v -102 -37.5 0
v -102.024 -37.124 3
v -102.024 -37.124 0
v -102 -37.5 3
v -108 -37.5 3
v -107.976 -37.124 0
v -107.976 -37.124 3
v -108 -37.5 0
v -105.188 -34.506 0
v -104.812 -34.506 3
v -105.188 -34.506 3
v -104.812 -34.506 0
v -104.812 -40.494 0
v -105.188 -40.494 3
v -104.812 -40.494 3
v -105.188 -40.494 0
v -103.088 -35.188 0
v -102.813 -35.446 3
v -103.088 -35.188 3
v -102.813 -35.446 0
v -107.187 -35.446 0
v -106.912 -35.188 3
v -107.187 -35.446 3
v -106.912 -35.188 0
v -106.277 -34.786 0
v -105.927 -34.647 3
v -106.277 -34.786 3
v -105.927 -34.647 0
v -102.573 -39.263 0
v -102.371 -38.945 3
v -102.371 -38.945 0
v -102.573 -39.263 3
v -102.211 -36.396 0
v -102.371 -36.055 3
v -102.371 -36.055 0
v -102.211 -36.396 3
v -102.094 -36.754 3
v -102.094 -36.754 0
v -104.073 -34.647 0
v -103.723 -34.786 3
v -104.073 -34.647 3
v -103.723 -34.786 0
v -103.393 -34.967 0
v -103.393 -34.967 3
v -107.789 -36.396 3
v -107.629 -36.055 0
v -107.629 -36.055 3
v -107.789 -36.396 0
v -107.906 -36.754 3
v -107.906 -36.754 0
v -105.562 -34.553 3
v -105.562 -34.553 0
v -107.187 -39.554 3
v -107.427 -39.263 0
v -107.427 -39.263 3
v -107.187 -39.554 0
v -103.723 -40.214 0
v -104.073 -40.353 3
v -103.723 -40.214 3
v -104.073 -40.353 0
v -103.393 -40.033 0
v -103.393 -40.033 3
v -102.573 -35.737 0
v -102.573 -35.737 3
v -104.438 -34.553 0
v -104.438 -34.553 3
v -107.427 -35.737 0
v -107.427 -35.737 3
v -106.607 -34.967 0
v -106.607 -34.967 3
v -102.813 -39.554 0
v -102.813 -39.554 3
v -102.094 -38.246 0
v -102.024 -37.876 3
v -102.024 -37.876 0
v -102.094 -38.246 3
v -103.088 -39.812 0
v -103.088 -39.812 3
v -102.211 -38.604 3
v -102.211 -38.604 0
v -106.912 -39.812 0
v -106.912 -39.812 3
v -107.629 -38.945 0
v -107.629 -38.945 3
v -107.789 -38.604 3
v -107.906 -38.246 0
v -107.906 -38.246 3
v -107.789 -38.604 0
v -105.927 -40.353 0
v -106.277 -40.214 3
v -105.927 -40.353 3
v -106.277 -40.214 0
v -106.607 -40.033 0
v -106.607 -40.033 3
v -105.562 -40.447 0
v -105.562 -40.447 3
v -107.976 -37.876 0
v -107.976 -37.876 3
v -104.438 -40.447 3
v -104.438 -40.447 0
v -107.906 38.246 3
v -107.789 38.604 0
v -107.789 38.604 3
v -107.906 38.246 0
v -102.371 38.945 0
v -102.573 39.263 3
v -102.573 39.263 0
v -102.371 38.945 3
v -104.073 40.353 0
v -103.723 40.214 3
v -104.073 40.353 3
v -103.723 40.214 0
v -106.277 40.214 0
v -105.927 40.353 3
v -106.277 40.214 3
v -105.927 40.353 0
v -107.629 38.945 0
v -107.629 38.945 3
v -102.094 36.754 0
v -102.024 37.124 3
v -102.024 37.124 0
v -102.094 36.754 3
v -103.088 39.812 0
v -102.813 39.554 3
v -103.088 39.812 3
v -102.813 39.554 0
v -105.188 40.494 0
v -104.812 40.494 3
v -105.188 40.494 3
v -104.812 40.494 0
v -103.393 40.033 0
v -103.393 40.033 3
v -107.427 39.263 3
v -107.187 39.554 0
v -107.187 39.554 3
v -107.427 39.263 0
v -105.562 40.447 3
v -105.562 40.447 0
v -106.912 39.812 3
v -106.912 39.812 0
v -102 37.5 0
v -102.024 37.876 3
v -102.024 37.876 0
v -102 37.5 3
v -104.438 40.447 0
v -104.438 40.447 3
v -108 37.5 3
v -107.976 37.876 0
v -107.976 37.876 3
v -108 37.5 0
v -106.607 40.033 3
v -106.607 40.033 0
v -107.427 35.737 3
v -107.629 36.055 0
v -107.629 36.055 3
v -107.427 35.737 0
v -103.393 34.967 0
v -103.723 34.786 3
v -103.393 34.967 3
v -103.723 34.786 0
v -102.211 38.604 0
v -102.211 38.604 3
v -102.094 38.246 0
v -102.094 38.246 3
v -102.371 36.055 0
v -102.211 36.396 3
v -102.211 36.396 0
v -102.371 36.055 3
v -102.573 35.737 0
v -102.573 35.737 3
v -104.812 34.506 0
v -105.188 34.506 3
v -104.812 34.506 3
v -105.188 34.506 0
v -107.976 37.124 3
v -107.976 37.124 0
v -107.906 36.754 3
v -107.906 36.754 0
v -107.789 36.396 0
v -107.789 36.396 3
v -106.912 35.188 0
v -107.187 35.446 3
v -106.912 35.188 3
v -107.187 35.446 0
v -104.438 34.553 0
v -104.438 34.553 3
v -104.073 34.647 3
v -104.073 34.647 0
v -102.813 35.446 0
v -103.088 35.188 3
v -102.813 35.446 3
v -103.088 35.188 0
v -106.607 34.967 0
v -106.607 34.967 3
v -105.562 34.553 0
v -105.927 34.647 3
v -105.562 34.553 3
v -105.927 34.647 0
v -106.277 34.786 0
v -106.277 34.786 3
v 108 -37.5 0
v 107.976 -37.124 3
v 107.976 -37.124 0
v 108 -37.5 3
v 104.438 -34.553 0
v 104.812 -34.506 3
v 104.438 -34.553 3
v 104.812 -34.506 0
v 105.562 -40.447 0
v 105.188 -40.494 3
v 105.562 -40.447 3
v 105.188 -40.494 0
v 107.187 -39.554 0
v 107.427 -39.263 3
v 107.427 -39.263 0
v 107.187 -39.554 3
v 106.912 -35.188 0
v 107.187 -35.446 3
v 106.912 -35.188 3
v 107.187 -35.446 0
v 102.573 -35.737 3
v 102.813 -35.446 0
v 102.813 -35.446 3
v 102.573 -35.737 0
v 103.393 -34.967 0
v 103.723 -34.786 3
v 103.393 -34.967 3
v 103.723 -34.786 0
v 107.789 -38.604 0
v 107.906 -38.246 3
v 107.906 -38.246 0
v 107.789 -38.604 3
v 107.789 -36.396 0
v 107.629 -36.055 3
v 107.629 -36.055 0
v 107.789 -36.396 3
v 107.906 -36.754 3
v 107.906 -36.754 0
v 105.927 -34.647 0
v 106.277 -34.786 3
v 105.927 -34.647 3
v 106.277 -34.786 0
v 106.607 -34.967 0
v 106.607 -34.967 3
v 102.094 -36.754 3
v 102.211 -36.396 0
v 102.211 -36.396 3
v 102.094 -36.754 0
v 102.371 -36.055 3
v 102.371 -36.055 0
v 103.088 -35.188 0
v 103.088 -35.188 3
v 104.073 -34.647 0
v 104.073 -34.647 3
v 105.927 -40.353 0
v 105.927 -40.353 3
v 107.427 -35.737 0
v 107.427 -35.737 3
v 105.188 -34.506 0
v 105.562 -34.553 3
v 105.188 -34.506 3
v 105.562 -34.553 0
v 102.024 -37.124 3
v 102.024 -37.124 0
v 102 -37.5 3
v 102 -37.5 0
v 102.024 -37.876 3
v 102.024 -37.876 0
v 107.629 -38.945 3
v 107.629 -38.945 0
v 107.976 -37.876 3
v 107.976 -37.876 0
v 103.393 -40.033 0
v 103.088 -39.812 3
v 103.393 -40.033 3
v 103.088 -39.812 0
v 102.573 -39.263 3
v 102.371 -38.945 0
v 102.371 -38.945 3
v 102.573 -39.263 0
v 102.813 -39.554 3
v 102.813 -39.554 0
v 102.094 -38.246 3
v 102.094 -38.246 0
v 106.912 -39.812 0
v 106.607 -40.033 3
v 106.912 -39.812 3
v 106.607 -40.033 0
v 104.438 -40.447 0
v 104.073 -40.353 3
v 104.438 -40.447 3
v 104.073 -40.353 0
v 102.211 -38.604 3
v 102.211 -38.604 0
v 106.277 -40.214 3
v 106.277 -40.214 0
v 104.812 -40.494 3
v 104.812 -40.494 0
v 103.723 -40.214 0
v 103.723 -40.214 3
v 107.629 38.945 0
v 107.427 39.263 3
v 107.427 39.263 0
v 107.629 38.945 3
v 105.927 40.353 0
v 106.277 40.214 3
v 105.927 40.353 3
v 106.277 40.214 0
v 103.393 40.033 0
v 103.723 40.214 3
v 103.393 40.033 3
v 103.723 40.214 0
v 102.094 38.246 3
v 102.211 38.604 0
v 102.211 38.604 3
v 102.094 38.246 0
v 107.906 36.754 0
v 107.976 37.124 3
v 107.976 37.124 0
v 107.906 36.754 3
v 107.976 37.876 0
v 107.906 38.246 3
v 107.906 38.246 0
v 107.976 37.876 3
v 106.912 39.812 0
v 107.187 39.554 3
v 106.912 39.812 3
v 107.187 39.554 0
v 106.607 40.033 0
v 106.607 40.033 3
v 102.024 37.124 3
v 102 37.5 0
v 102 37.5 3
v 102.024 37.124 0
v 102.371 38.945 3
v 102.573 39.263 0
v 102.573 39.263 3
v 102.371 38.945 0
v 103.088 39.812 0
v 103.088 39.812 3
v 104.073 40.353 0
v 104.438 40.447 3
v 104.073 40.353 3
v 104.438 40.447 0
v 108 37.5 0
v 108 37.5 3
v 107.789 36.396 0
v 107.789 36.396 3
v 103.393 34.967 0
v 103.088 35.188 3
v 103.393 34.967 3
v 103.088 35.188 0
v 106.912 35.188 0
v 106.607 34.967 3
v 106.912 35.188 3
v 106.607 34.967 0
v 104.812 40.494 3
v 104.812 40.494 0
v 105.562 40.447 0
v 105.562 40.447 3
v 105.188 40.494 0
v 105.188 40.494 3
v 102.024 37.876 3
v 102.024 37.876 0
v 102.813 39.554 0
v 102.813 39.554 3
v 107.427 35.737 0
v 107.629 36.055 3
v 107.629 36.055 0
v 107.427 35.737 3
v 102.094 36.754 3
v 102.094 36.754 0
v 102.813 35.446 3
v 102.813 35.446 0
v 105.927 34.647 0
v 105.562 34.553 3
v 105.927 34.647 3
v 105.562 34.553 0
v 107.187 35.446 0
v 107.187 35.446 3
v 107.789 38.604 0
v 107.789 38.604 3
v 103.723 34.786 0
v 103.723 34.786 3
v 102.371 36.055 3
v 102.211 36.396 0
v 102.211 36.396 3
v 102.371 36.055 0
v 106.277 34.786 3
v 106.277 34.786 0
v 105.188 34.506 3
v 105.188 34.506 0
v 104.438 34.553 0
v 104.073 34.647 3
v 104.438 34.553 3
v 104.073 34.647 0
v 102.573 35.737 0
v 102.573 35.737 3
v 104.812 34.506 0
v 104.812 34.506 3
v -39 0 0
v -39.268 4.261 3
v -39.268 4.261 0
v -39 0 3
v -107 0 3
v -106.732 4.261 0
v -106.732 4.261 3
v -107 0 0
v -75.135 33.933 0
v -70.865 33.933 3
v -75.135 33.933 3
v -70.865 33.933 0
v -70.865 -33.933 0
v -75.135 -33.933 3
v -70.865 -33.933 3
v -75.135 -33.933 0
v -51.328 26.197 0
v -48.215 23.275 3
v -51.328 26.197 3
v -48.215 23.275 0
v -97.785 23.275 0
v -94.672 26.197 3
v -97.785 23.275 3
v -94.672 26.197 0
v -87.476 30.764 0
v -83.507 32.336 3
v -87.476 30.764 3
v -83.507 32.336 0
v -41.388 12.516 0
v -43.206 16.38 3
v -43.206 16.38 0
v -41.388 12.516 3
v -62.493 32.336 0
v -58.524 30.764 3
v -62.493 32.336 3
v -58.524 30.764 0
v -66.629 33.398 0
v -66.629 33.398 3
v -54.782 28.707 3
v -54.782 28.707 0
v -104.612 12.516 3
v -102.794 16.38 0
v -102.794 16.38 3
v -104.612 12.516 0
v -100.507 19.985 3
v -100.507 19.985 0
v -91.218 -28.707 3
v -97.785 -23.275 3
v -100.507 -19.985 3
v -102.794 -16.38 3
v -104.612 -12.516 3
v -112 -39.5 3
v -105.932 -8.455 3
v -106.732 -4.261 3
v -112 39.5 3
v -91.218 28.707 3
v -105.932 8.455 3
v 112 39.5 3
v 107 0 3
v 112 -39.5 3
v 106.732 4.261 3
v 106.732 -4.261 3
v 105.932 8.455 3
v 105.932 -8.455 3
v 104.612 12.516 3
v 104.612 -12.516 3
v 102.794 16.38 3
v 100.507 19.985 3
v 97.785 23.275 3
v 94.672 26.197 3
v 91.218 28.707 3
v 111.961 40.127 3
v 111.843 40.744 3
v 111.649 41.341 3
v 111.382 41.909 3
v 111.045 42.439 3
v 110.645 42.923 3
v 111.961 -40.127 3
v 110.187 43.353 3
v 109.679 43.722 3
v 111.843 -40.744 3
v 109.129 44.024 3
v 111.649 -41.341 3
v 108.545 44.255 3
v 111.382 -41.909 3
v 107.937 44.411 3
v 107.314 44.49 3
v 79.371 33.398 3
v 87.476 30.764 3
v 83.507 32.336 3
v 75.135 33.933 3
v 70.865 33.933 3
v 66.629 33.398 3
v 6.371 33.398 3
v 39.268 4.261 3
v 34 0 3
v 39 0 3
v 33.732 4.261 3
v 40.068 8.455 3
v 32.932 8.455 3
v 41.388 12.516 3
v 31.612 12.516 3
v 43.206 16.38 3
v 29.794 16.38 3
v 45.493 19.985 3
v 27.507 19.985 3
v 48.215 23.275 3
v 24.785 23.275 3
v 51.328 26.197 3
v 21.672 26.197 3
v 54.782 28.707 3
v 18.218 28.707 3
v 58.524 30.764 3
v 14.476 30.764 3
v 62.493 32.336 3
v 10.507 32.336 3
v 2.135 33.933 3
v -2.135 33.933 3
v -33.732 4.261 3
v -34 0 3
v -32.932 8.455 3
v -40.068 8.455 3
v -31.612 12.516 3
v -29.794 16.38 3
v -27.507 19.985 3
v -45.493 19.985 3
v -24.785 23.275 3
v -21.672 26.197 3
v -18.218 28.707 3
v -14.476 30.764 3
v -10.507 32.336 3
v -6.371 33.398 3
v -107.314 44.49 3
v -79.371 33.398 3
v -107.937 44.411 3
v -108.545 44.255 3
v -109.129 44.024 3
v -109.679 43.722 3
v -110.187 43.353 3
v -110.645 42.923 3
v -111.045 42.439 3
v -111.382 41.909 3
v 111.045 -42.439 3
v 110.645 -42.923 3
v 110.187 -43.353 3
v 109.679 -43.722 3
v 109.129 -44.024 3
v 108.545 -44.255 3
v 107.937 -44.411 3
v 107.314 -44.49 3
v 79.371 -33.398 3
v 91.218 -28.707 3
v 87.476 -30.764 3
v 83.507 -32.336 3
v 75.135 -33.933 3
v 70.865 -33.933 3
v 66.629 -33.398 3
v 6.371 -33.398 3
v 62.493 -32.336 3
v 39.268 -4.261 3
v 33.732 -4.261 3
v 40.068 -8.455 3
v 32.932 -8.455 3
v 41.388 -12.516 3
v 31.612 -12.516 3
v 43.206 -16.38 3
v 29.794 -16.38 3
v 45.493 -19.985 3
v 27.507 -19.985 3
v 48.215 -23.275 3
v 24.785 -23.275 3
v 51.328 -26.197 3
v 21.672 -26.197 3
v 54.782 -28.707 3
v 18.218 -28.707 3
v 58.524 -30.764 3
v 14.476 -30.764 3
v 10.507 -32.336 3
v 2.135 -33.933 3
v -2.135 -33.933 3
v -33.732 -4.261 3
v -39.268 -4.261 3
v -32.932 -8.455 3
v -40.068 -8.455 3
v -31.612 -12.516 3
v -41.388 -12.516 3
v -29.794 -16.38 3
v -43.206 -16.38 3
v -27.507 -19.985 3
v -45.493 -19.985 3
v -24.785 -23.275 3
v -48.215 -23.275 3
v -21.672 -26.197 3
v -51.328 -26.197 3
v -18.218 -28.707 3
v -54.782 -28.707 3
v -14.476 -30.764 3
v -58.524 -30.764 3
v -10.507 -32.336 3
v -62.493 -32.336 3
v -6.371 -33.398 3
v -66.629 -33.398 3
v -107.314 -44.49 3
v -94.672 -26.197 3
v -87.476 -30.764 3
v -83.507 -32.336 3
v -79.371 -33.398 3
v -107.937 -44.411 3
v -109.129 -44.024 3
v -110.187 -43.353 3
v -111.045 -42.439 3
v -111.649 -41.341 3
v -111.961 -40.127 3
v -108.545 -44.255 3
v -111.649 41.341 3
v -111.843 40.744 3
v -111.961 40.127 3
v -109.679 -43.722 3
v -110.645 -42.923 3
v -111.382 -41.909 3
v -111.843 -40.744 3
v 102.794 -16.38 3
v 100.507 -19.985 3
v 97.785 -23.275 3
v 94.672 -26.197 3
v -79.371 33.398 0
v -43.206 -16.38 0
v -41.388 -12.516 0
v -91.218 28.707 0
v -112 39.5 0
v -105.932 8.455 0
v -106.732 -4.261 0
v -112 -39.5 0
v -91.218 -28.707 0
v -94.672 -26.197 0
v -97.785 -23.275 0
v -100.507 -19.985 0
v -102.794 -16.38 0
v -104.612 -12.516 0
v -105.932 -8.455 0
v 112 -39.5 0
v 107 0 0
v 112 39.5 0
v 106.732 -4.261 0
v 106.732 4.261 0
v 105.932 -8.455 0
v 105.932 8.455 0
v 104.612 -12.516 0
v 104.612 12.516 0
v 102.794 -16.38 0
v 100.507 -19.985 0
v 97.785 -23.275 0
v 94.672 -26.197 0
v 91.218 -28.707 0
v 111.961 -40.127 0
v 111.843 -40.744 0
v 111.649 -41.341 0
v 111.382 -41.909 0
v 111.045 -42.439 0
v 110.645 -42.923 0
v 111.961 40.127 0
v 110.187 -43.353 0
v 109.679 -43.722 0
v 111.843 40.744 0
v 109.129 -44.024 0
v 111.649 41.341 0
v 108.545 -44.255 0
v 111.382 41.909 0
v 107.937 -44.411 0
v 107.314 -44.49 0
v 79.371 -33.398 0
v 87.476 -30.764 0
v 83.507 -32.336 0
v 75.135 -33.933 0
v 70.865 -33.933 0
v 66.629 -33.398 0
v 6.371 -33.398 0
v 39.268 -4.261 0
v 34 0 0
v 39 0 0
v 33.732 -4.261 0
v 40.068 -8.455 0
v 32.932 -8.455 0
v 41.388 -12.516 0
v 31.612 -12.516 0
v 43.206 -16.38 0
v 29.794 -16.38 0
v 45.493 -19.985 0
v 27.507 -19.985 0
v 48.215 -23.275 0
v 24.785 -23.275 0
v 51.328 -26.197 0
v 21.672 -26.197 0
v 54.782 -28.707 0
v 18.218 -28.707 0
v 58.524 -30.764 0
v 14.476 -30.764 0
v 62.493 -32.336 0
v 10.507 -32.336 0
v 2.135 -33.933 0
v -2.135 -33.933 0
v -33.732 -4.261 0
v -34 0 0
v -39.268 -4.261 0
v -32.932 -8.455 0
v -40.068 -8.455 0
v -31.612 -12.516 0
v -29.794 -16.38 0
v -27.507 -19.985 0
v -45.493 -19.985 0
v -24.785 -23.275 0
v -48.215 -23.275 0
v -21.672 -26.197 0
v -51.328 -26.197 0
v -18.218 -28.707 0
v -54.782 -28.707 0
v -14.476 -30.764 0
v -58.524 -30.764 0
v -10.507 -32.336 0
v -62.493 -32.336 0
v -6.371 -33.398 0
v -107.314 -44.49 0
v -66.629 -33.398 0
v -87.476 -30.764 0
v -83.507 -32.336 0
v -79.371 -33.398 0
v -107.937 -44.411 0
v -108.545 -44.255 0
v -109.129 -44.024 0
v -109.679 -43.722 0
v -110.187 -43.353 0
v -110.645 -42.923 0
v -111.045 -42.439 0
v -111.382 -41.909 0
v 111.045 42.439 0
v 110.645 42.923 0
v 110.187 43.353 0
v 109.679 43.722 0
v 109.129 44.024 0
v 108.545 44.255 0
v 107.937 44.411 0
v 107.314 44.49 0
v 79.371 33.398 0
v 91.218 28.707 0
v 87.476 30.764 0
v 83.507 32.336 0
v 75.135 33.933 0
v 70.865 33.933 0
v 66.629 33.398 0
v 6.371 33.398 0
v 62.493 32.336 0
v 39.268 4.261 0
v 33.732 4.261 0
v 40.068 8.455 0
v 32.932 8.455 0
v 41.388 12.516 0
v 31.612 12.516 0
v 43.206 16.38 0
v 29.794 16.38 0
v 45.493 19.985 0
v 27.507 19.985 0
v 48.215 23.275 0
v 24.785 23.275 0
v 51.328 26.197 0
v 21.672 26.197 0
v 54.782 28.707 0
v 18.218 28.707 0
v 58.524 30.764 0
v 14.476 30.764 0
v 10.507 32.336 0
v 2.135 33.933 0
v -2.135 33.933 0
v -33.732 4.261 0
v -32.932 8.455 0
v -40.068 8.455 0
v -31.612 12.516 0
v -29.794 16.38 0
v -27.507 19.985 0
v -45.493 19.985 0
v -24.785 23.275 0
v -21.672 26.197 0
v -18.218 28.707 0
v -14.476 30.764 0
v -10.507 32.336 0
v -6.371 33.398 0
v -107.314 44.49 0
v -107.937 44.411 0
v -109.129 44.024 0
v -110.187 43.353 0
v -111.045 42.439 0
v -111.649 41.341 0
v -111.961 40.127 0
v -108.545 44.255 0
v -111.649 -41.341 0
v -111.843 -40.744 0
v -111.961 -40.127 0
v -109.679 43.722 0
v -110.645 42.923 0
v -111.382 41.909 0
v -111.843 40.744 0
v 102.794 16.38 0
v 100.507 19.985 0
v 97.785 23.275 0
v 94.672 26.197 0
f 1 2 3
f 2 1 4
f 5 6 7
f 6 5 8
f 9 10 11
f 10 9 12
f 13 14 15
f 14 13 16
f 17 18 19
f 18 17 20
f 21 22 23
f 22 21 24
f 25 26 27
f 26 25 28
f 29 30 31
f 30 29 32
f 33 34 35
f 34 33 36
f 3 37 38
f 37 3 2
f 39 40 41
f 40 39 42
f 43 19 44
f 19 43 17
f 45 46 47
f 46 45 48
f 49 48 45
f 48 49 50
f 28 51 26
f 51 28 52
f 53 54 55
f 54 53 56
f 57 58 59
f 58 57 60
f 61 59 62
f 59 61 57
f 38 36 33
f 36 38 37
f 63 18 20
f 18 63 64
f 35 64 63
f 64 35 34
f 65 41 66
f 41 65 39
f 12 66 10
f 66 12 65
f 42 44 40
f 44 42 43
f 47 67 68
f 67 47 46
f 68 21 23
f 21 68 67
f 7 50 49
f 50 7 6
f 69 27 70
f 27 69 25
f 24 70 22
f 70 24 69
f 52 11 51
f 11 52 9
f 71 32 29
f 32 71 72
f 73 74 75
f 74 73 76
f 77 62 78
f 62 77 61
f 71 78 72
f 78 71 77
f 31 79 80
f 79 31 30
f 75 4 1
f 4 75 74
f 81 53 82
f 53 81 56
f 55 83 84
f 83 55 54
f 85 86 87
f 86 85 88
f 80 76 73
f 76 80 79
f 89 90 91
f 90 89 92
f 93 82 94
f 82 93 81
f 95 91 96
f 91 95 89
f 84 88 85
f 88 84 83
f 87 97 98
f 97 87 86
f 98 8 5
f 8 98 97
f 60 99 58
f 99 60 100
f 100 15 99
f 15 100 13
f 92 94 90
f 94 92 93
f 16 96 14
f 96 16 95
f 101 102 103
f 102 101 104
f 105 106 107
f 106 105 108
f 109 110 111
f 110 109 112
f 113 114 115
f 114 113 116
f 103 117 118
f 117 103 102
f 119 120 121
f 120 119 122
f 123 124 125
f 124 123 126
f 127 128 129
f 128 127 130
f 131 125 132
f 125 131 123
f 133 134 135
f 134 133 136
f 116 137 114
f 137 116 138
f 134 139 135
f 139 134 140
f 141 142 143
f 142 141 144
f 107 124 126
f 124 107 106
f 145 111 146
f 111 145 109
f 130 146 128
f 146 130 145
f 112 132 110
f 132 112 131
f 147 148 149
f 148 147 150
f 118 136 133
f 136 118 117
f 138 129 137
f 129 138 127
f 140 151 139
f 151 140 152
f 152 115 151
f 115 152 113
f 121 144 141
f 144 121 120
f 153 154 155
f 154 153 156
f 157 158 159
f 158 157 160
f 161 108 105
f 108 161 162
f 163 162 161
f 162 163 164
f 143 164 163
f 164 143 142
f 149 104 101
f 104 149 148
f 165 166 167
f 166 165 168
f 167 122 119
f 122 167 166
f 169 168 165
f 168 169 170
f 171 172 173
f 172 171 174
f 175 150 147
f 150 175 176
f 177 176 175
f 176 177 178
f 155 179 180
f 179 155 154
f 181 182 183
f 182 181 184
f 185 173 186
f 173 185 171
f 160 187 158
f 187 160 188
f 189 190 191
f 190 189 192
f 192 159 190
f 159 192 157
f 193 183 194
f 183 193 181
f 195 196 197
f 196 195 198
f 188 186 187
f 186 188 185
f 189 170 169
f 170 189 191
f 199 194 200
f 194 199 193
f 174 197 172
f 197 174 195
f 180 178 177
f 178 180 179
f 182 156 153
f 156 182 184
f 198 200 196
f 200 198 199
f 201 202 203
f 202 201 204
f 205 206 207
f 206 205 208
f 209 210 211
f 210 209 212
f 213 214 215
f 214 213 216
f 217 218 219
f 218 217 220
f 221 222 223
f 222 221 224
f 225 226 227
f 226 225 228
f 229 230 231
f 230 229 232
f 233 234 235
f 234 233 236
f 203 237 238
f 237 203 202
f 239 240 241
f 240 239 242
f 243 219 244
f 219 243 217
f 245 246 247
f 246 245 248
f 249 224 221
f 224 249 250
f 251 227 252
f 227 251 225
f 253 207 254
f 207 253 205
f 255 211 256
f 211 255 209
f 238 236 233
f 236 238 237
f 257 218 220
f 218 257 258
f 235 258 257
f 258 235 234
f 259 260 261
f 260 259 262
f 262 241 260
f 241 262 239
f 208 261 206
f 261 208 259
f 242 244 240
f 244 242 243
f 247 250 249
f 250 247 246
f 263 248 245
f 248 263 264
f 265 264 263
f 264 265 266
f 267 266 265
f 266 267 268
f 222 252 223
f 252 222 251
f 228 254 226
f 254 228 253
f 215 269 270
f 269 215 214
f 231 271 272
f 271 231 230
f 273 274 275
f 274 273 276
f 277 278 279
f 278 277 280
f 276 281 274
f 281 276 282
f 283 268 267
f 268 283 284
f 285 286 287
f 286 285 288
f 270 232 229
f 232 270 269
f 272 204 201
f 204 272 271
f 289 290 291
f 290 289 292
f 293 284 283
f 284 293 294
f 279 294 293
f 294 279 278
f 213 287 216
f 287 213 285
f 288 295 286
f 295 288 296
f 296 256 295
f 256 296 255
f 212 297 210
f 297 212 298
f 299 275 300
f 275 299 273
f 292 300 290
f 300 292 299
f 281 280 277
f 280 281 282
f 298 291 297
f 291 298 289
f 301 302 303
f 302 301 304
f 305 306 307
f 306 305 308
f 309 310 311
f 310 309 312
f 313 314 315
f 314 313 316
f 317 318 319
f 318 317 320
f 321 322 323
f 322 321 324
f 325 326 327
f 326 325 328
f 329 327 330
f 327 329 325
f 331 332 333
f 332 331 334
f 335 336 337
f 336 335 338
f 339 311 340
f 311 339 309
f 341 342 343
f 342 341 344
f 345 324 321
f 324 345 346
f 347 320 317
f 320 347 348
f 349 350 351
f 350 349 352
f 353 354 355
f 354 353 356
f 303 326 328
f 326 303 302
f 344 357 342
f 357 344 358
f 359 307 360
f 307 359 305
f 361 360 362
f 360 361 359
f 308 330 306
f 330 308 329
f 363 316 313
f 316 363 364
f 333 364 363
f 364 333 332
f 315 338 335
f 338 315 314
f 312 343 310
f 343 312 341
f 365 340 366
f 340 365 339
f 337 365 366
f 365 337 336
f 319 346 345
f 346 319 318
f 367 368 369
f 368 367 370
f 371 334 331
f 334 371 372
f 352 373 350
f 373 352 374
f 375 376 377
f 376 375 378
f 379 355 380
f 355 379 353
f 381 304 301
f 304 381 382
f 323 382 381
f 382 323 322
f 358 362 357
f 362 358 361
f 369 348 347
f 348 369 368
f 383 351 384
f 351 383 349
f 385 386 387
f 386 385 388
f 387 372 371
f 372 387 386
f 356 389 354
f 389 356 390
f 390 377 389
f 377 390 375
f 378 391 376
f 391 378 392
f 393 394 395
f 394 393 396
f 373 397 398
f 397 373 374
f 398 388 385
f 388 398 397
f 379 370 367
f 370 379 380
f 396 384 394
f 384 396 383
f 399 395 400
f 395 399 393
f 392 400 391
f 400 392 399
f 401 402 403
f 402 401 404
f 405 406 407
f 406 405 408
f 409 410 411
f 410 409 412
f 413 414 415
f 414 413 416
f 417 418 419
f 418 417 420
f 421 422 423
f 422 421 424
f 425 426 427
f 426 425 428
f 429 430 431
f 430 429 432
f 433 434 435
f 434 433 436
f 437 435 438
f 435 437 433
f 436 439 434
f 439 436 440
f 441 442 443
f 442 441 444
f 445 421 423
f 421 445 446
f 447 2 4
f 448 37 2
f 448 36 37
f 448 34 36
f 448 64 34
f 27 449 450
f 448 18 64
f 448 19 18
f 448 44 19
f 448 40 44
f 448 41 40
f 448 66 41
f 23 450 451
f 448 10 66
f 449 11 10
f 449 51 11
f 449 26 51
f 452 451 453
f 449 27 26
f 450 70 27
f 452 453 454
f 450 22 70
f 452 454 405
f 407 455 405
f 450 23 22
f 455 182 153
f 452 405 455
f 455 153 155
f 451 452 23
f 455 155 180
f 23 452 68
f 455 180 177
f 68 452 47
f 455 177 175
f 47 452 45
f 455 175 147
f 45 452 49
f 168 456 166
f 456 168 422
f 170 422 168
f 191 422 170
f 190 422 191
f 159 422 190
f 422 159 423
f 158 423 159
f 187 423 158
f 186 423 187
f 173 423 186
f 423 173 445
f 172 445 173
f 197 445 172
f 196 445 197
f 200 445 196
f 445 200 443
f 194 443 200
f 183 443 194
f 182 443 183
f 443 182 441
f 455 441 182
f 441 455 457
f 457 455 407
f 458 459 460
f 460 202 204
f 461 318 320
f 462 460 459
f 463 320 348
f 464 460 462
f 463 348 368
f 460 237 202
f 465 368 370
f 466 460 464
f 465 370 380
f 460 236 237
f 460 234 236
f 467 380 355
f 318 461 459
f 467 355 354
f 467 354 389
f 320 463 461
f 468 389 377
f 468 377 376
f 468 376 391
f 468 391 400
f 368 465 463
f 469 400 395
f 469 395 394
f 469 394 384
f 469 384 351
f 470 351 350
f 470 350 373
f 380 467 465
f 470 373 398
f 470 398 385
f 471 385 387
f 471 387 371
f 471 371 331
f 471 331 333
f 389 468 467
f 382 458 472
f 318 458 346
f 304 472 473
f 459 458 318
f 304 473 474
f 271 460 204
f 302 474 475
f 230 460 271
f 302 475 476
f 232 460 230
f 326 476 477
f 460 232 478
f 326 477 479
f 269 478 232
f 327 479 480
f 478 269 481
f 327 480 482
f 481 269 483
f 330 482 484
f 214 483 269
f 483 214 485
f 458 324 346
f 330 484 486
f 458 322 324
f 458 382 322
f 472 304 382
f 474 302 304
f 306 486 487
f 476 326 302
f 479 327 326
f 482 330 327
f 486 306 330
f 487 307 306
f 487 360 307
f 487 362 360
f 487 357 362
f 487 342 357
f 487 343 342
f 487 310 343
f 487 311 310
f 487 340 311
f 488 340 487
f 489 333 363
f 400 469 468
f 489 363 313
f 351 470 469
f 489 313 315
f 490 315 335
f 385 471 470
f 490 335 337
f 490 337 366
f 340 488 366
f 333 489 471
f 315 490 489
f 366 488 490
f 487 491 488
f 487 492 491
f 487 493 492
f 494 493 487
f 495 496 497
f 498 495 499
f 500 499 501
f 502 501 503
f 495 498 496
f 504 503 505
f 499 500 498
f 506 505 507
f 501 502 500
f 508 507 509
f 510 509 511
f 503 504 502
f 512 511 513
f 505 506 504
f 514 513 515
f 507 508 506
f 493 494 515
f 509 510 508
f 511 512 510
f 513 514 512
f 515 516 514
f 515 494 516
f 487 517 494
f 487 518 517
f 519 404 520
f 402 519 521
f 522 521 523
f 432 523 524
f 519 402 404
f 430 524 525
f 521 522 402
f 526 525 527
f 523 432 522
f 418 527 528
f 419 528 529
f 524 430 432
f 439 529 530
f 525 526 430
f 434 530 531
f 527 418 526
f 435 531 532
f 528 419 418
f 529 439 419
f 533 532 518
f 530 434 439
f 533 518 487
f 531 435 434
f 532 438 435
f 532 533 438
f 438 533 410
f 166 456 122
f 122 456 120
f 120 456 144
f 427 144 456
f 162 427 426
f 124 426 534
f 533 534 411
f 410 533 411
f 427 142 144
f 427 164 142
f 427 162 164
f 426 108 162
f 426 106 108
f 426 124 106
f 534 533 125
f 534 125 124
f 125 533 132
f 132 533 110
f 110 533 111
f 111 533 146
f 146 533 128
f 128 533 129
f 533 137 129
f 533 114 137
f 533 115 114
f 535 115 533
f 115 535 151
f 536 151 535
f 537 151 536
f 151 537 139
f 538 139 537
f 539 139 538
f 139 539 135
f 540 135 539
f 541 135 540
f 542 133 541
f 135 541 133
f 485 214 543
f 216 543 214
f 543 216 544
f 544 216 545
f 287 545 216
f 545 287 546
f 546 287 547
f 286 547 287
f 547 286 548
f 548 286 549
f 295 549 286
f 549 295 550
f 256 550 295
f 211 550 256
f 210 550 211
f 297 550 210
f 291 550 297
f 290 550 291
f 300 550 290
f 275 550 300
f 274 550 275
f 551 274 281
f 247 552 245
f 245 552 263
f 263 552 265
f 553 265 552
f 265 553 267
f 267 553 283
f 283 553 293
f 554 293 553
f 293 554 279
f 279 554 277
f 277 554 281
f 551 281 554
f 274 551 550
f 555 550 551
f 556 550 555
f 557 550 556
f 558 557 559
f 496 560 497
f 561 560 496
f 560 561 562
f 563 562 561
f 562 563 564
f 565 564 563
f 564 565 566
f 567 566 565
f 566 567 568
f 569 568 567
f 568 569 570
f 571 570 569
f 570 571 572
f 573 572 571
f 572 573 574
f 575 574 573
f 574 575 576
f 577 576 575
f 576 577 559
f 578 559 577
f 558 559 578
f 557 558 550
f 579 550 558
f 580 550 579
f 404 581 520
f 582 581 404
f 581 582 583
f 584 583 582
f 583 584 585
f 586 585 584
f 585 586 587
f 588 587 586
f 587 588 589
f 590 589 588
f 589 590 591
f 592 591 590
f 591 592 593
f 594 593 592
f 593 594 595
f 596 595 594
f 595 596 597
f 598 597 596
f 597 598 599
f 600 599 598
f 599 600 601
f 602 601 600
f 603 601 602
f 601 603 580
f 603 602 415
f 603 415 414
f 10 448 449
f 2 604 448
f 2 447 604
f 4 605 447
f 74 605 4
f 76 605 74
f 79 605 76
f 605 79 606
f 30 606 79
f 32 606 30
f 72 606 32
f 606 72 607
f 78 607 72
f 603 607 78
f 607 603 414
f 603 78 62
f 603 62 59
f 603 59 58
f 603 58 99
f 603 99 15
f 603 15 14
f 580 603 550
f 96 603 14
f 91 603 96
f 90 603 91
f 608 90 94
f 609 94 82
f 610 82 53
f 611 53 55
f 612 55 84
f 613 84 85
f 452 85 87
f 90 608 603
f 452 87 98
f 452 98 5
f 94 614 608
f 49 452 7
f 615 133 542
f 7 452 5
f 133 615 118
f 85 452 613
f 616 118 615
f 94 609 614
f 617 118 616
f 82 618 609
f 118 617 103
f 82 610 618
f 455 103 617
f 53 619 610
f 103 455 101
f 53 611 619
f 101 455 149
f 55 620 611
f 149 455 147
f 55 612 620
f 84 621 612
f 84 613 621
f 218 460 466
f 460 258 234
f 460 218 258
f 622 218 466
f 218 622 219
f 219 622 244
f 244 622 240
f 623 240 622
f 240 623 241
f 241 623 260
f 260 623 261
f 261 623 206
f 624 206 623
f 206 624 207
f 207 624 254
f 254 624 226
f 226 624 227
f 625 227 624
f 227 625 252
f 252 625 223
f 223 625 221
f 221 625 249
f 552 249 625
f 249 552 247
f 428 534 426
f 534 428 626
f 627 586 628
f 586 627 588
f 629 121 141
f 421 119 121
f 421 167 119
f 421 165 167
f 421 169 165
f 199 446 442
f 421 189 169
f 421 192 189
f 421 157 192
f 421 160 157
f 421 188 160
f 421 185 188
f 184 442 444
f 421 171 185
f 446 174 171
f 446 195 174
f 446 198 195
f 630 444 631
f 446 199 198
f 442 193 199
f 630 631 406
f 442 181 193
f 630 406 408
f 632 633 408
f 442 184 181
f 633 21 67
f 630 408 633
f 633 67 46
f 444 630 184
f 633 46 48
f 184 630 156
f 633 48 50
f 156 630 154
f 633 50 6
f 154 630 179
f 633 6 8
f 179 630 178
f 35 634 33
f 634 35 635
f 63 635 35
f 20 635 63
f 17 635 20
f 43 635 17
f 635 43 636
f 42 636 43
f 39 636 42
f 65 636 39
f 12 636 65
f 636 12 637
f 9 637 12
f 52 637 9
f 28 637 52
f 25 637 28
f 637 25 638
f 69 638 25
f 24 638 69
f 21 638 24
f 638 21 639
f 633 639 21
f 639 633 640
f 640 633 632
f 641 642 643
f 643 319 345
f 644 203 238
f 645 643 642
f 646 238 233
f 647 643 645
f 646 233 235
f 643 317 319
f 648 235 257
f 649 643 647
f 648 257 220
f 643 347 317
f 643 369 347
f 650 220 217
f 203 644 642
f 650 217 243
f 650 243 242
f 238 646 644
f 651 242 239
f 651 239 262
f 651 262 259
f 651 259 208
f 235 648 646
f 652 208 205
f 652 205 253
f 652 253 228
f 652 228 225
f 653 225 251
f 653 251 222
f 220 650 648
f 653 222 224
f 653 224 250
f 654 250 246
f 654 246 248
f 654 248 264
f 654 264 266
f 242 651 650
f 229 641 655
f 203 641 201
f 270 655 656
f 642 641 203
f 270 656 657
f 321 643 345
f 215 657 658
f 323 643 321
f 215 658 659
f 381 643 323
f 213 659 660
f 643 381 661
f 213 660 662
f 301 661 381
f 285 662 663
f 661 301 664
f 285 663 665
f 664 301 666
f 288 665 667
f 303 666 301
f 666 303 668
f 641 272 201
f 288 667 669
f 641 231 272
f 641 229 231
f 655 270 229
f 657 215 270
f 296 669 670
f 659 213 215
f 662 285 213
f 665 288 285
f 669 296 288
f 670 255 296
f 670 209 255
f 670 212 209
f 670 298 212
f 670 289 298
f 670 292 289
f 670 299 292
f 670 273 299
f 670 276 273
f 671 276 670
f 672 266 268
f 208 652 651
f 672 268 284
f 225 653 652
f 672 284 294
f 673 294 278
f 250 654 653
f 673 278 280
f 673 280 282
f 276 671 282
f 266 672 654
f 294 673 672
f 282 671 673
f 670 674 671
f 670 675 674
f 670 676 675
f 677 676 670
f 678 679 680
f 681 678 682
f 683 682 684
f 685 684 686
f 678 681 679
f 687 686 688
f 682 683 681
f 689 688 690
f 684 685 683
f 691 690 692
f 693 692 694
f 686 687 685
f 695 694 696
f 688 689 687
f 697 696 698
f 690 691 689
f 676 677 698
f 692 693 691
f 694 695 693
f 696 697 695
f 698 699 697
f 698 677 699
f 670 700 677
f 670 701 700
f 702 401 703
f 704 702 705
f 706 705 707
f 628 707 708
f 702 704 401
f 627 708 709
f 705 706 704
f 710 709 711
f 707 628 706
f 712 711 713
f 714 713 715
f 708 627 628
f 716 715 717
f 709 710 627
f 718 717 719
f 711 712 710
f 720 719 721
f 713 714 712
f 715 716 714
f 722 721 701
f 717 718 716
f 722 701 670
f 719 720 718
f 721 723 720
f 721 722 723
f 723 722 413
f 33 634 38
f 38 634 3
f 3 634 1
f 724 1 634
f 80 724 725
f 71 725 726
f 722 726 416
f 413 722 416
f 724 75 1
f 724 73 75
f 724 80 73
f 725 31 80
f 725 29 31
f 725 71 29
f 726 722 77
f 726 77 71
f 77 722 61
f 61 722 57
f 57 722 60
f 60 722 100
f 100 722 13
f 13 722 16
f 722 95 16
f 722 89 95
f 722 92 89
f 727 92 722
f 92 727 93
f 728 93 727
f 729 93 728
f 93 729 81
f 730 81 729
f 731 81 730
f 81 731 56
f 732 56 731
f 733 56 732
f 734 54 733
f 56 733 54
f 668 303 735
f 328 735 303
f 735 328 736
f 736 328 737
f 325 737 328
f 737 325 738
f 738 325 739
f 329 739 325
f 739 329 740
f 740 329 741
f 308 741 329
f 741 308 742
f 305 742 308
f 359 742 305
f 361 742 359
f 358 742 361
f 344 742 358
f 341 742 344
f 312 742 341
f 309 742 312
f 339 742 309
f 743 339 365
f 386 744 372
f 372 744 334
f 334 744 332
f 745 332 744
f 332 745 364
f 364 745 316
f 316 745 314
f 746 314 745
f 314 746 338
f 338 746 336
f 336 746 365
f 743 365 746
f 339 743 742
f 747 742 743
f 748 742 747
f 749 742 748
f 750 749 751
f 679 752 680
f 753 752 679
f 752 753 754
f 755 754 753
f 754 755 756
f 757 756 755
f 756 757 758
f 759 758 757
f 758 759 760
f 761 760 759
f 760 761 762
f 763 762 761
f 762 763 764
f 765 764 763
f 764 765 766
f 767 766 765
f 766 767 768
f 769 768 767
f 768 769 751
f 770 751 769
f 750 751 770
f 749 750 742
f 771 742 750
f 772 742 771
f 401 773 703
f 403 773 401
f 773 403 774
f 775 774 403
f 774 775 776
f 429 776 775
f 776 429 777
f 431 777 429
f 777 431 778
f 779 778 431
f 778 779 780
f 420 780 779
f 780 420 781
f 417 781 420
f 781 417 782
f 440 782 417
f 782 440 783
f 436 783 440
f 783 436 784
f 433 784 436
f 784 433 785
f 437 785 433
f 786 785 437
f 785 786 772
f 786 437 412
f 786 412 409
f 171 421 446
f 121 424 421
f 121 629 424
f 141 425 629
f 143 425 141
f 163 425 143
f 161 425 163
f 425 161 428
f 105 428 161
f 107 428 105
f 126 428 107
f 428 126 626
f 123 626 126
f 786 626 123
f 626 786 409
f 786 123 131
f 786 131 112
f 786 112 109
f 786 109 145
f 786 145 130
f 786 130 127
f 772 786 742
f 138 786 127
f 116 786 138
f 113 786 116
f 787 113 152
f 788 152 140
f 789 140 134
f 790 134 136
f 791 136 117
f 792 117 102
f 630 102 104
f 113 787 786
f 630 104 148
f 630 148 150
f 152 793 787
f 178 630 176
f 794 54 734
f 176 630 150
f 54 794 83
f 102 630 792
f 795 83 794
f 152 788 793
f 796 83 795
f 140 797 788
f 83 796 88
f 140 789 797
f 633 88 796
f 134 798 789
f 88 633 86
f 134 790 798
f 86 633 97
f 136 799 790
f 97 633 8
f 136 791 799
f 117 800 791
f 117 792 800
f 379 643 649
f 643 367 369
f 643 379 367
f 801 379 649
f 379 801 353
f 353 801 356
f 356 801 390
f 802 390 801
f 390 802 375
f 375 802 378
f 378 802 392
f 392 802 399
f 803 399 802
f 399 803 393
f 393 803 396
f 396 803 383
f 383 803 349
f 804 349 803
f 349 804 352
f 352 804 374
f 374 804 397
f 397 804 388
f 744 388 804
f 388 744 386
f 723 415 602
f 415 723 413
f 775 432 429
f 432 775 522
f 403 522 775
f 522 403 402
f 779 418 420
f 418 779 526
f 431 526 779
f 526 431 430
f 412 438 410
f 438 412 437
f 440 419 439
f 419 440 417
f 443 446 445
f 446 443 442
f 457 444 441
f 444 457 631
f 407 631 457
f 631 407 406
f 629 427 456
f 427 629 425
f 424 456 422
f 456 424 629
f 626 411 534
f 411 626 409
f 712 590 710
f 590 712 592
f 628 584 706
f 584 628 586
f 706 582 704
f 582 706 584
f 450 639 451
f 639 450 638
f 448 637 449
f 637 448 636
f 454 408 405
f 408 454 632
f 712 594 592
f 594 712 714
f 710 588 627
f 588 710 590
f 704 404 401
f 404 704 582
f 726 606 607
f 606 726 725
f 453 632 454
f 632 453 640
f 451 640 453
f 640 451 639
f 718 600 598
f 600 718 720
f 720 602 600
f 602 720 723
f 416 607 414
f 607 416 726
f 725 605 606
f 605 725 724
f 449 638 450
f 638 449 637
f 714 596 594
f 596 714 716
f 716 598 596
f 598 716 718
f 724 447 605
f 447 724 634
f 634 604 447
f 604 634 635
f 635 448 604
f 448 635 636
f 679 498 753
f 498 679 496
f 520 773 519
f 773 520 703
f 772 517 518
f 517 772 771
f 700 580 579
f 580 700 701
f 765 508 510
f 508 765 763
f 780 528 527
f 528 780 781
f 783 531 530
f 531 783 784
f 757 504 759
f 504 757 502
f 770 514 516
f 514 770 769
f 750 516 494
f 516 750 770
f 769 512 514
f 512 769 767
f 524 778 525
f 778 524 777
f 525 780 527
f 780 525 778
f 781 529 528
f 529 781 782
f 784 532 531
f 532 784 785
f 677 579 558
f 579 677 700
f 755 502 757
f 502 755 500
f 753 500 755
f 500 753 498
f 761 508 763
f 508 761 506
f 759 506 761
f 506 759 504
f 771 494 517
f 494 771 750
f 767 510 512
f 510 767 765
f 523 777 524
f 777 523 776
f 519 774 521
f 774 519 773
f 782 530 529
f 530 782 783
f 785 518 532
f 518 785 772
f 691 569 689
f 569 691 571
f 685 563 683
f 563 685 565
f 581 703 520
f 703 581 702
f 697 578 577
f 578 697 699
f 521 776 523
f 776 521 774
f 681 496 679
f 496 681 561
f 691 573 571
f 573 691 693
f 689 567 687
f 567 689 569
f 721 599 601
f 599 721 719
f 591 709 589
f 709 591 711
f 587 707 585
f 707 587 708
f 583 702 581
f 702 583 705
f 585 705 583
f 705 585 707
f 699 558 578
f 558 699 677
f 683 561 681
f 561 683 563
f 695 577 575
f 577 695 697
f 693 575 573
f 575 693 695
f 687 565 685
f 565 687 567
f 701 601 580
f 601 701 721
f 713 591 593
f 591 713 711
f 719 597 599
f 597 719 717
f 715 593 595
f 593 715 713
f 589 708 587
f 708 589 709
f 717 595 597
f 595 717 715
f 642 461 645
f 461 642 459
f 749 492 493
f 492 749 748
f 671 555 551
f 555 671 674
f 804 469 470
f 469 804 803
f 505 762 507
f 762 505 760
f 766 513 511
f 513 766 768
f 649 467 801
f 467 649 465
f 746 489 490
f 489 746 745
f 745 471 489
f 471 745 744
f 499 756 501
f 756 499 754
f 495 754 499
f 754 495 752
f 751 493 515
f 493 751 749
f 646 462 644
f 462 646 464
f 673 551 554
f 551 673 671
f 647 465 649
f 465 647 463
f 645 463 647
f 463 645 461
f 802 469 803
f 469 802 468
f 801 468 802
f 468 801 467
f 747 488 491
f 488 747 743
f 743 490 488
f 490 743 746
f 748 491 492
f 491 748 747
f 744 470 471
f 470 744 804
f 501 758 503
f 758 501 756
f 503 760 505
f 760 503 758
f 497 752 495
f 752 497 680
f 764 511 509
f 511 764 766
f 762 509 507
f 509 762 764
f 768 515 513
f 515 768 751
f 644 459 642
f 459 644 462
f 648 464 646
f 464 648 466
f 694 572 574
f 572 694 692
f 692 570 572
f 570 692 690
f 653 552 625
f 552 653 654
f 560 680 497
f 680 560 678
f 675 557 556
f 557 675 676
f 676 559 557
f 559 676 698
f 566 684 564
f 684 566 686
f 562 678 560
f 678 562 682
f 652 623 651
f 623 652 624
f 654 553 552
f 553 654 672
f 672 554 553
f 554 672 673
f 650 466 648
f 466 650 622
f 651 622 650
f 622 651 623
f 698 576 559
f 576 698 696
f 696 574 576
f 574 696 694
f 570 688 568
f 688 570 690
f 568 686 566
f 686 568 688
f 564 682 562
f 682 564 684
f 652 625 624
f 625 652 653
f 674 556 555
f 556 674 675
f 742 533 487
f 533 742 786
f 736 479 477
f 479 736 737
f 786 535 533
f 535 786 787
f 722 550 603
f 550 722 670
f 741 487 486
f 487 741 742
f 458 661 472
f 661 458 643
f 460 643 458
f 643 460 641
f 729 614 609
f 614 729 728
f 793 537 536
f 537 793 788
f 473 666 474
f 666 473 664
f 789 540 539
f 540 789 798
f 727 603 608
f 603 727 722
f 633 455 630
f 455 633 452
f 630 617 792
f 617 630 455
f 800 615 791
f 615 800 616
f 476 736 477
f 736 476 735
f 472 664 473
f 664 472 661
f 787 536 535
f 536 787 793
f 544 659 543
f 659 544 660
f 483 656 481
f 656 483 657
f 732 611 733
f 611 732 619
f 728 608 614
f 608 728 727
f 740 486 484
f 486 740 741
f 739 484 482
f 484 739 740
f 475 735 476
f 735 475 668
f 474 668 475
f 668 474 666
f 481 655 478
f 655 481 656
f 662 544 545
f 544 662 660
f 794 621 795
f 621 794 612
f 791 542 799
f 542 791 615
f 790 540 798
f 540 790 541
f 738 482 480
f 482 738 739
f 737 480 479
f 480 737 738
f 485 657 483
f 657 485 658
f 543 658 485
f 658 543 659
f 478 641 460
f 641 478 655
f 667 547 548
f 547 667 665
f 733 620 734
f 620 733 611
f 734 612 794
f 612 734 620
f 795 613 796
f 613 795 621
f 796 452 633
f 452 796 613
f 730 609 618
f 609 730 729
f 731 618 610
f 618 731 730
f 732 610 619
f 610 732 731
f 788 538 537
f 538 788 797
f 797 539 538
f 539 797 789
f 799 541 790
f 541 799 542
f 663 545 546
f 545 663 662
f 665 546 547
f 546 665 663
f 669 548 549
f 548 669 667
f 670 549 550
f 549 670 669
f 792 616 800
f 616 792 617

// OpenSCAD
$fn = 50;


difference() {
	union() {
		hull() {
			translate(v = [-107.0000000000, 39.5000000000, 0]) {
				cylinder(h = 3, r = 5);
			}
			translate(v = [107.0000000000, 39.5000000000, 0]) {
				cylinder(h = 3, r = 5);
			}
			translate(v = [-107.0000000000, -39.5000000000, 0]) {
				cylinder(h = 3, r = 5);
			}
			translate(v = [107.0000000000, -39.5000000000, 0]) {
				cylinder(h = 3, r = 5);
			}
		}
	}
	union() {
		#translate(v = [-105.0000000000, -37.5000000000, -100.0000000000]) {
			cylinder(h = 200, r = 3.0000000000);
		}
		#translate(v = [-105.0000000000, 37.5000000000, -100.0000000000]) {
			cylinder(h = 200, r = 3.0000000000);
		}
		#translate(v = [105.0000000000, -37.5000000000, -100.0000000000]) {
			cylinder(h = 200, r = 3.0000000000);
		}
		#translate(v = [105.0000000000, 37.5000000000, -100.0000000000]) {
			cylinder(h = 200, r = 3.0000000000);
		}
		#translate(v = [-73.0000000000, 0, 0]) {
			cylinder(h = 3, r = 34.0000000000);
		}
		#cylinder(h = 3, r = 34.0000000000);
		#translate(v = [73.0000000000, 0, 0]) {
			cylinder(h = 3, r = 34.0000000000);
		}
	}
}
